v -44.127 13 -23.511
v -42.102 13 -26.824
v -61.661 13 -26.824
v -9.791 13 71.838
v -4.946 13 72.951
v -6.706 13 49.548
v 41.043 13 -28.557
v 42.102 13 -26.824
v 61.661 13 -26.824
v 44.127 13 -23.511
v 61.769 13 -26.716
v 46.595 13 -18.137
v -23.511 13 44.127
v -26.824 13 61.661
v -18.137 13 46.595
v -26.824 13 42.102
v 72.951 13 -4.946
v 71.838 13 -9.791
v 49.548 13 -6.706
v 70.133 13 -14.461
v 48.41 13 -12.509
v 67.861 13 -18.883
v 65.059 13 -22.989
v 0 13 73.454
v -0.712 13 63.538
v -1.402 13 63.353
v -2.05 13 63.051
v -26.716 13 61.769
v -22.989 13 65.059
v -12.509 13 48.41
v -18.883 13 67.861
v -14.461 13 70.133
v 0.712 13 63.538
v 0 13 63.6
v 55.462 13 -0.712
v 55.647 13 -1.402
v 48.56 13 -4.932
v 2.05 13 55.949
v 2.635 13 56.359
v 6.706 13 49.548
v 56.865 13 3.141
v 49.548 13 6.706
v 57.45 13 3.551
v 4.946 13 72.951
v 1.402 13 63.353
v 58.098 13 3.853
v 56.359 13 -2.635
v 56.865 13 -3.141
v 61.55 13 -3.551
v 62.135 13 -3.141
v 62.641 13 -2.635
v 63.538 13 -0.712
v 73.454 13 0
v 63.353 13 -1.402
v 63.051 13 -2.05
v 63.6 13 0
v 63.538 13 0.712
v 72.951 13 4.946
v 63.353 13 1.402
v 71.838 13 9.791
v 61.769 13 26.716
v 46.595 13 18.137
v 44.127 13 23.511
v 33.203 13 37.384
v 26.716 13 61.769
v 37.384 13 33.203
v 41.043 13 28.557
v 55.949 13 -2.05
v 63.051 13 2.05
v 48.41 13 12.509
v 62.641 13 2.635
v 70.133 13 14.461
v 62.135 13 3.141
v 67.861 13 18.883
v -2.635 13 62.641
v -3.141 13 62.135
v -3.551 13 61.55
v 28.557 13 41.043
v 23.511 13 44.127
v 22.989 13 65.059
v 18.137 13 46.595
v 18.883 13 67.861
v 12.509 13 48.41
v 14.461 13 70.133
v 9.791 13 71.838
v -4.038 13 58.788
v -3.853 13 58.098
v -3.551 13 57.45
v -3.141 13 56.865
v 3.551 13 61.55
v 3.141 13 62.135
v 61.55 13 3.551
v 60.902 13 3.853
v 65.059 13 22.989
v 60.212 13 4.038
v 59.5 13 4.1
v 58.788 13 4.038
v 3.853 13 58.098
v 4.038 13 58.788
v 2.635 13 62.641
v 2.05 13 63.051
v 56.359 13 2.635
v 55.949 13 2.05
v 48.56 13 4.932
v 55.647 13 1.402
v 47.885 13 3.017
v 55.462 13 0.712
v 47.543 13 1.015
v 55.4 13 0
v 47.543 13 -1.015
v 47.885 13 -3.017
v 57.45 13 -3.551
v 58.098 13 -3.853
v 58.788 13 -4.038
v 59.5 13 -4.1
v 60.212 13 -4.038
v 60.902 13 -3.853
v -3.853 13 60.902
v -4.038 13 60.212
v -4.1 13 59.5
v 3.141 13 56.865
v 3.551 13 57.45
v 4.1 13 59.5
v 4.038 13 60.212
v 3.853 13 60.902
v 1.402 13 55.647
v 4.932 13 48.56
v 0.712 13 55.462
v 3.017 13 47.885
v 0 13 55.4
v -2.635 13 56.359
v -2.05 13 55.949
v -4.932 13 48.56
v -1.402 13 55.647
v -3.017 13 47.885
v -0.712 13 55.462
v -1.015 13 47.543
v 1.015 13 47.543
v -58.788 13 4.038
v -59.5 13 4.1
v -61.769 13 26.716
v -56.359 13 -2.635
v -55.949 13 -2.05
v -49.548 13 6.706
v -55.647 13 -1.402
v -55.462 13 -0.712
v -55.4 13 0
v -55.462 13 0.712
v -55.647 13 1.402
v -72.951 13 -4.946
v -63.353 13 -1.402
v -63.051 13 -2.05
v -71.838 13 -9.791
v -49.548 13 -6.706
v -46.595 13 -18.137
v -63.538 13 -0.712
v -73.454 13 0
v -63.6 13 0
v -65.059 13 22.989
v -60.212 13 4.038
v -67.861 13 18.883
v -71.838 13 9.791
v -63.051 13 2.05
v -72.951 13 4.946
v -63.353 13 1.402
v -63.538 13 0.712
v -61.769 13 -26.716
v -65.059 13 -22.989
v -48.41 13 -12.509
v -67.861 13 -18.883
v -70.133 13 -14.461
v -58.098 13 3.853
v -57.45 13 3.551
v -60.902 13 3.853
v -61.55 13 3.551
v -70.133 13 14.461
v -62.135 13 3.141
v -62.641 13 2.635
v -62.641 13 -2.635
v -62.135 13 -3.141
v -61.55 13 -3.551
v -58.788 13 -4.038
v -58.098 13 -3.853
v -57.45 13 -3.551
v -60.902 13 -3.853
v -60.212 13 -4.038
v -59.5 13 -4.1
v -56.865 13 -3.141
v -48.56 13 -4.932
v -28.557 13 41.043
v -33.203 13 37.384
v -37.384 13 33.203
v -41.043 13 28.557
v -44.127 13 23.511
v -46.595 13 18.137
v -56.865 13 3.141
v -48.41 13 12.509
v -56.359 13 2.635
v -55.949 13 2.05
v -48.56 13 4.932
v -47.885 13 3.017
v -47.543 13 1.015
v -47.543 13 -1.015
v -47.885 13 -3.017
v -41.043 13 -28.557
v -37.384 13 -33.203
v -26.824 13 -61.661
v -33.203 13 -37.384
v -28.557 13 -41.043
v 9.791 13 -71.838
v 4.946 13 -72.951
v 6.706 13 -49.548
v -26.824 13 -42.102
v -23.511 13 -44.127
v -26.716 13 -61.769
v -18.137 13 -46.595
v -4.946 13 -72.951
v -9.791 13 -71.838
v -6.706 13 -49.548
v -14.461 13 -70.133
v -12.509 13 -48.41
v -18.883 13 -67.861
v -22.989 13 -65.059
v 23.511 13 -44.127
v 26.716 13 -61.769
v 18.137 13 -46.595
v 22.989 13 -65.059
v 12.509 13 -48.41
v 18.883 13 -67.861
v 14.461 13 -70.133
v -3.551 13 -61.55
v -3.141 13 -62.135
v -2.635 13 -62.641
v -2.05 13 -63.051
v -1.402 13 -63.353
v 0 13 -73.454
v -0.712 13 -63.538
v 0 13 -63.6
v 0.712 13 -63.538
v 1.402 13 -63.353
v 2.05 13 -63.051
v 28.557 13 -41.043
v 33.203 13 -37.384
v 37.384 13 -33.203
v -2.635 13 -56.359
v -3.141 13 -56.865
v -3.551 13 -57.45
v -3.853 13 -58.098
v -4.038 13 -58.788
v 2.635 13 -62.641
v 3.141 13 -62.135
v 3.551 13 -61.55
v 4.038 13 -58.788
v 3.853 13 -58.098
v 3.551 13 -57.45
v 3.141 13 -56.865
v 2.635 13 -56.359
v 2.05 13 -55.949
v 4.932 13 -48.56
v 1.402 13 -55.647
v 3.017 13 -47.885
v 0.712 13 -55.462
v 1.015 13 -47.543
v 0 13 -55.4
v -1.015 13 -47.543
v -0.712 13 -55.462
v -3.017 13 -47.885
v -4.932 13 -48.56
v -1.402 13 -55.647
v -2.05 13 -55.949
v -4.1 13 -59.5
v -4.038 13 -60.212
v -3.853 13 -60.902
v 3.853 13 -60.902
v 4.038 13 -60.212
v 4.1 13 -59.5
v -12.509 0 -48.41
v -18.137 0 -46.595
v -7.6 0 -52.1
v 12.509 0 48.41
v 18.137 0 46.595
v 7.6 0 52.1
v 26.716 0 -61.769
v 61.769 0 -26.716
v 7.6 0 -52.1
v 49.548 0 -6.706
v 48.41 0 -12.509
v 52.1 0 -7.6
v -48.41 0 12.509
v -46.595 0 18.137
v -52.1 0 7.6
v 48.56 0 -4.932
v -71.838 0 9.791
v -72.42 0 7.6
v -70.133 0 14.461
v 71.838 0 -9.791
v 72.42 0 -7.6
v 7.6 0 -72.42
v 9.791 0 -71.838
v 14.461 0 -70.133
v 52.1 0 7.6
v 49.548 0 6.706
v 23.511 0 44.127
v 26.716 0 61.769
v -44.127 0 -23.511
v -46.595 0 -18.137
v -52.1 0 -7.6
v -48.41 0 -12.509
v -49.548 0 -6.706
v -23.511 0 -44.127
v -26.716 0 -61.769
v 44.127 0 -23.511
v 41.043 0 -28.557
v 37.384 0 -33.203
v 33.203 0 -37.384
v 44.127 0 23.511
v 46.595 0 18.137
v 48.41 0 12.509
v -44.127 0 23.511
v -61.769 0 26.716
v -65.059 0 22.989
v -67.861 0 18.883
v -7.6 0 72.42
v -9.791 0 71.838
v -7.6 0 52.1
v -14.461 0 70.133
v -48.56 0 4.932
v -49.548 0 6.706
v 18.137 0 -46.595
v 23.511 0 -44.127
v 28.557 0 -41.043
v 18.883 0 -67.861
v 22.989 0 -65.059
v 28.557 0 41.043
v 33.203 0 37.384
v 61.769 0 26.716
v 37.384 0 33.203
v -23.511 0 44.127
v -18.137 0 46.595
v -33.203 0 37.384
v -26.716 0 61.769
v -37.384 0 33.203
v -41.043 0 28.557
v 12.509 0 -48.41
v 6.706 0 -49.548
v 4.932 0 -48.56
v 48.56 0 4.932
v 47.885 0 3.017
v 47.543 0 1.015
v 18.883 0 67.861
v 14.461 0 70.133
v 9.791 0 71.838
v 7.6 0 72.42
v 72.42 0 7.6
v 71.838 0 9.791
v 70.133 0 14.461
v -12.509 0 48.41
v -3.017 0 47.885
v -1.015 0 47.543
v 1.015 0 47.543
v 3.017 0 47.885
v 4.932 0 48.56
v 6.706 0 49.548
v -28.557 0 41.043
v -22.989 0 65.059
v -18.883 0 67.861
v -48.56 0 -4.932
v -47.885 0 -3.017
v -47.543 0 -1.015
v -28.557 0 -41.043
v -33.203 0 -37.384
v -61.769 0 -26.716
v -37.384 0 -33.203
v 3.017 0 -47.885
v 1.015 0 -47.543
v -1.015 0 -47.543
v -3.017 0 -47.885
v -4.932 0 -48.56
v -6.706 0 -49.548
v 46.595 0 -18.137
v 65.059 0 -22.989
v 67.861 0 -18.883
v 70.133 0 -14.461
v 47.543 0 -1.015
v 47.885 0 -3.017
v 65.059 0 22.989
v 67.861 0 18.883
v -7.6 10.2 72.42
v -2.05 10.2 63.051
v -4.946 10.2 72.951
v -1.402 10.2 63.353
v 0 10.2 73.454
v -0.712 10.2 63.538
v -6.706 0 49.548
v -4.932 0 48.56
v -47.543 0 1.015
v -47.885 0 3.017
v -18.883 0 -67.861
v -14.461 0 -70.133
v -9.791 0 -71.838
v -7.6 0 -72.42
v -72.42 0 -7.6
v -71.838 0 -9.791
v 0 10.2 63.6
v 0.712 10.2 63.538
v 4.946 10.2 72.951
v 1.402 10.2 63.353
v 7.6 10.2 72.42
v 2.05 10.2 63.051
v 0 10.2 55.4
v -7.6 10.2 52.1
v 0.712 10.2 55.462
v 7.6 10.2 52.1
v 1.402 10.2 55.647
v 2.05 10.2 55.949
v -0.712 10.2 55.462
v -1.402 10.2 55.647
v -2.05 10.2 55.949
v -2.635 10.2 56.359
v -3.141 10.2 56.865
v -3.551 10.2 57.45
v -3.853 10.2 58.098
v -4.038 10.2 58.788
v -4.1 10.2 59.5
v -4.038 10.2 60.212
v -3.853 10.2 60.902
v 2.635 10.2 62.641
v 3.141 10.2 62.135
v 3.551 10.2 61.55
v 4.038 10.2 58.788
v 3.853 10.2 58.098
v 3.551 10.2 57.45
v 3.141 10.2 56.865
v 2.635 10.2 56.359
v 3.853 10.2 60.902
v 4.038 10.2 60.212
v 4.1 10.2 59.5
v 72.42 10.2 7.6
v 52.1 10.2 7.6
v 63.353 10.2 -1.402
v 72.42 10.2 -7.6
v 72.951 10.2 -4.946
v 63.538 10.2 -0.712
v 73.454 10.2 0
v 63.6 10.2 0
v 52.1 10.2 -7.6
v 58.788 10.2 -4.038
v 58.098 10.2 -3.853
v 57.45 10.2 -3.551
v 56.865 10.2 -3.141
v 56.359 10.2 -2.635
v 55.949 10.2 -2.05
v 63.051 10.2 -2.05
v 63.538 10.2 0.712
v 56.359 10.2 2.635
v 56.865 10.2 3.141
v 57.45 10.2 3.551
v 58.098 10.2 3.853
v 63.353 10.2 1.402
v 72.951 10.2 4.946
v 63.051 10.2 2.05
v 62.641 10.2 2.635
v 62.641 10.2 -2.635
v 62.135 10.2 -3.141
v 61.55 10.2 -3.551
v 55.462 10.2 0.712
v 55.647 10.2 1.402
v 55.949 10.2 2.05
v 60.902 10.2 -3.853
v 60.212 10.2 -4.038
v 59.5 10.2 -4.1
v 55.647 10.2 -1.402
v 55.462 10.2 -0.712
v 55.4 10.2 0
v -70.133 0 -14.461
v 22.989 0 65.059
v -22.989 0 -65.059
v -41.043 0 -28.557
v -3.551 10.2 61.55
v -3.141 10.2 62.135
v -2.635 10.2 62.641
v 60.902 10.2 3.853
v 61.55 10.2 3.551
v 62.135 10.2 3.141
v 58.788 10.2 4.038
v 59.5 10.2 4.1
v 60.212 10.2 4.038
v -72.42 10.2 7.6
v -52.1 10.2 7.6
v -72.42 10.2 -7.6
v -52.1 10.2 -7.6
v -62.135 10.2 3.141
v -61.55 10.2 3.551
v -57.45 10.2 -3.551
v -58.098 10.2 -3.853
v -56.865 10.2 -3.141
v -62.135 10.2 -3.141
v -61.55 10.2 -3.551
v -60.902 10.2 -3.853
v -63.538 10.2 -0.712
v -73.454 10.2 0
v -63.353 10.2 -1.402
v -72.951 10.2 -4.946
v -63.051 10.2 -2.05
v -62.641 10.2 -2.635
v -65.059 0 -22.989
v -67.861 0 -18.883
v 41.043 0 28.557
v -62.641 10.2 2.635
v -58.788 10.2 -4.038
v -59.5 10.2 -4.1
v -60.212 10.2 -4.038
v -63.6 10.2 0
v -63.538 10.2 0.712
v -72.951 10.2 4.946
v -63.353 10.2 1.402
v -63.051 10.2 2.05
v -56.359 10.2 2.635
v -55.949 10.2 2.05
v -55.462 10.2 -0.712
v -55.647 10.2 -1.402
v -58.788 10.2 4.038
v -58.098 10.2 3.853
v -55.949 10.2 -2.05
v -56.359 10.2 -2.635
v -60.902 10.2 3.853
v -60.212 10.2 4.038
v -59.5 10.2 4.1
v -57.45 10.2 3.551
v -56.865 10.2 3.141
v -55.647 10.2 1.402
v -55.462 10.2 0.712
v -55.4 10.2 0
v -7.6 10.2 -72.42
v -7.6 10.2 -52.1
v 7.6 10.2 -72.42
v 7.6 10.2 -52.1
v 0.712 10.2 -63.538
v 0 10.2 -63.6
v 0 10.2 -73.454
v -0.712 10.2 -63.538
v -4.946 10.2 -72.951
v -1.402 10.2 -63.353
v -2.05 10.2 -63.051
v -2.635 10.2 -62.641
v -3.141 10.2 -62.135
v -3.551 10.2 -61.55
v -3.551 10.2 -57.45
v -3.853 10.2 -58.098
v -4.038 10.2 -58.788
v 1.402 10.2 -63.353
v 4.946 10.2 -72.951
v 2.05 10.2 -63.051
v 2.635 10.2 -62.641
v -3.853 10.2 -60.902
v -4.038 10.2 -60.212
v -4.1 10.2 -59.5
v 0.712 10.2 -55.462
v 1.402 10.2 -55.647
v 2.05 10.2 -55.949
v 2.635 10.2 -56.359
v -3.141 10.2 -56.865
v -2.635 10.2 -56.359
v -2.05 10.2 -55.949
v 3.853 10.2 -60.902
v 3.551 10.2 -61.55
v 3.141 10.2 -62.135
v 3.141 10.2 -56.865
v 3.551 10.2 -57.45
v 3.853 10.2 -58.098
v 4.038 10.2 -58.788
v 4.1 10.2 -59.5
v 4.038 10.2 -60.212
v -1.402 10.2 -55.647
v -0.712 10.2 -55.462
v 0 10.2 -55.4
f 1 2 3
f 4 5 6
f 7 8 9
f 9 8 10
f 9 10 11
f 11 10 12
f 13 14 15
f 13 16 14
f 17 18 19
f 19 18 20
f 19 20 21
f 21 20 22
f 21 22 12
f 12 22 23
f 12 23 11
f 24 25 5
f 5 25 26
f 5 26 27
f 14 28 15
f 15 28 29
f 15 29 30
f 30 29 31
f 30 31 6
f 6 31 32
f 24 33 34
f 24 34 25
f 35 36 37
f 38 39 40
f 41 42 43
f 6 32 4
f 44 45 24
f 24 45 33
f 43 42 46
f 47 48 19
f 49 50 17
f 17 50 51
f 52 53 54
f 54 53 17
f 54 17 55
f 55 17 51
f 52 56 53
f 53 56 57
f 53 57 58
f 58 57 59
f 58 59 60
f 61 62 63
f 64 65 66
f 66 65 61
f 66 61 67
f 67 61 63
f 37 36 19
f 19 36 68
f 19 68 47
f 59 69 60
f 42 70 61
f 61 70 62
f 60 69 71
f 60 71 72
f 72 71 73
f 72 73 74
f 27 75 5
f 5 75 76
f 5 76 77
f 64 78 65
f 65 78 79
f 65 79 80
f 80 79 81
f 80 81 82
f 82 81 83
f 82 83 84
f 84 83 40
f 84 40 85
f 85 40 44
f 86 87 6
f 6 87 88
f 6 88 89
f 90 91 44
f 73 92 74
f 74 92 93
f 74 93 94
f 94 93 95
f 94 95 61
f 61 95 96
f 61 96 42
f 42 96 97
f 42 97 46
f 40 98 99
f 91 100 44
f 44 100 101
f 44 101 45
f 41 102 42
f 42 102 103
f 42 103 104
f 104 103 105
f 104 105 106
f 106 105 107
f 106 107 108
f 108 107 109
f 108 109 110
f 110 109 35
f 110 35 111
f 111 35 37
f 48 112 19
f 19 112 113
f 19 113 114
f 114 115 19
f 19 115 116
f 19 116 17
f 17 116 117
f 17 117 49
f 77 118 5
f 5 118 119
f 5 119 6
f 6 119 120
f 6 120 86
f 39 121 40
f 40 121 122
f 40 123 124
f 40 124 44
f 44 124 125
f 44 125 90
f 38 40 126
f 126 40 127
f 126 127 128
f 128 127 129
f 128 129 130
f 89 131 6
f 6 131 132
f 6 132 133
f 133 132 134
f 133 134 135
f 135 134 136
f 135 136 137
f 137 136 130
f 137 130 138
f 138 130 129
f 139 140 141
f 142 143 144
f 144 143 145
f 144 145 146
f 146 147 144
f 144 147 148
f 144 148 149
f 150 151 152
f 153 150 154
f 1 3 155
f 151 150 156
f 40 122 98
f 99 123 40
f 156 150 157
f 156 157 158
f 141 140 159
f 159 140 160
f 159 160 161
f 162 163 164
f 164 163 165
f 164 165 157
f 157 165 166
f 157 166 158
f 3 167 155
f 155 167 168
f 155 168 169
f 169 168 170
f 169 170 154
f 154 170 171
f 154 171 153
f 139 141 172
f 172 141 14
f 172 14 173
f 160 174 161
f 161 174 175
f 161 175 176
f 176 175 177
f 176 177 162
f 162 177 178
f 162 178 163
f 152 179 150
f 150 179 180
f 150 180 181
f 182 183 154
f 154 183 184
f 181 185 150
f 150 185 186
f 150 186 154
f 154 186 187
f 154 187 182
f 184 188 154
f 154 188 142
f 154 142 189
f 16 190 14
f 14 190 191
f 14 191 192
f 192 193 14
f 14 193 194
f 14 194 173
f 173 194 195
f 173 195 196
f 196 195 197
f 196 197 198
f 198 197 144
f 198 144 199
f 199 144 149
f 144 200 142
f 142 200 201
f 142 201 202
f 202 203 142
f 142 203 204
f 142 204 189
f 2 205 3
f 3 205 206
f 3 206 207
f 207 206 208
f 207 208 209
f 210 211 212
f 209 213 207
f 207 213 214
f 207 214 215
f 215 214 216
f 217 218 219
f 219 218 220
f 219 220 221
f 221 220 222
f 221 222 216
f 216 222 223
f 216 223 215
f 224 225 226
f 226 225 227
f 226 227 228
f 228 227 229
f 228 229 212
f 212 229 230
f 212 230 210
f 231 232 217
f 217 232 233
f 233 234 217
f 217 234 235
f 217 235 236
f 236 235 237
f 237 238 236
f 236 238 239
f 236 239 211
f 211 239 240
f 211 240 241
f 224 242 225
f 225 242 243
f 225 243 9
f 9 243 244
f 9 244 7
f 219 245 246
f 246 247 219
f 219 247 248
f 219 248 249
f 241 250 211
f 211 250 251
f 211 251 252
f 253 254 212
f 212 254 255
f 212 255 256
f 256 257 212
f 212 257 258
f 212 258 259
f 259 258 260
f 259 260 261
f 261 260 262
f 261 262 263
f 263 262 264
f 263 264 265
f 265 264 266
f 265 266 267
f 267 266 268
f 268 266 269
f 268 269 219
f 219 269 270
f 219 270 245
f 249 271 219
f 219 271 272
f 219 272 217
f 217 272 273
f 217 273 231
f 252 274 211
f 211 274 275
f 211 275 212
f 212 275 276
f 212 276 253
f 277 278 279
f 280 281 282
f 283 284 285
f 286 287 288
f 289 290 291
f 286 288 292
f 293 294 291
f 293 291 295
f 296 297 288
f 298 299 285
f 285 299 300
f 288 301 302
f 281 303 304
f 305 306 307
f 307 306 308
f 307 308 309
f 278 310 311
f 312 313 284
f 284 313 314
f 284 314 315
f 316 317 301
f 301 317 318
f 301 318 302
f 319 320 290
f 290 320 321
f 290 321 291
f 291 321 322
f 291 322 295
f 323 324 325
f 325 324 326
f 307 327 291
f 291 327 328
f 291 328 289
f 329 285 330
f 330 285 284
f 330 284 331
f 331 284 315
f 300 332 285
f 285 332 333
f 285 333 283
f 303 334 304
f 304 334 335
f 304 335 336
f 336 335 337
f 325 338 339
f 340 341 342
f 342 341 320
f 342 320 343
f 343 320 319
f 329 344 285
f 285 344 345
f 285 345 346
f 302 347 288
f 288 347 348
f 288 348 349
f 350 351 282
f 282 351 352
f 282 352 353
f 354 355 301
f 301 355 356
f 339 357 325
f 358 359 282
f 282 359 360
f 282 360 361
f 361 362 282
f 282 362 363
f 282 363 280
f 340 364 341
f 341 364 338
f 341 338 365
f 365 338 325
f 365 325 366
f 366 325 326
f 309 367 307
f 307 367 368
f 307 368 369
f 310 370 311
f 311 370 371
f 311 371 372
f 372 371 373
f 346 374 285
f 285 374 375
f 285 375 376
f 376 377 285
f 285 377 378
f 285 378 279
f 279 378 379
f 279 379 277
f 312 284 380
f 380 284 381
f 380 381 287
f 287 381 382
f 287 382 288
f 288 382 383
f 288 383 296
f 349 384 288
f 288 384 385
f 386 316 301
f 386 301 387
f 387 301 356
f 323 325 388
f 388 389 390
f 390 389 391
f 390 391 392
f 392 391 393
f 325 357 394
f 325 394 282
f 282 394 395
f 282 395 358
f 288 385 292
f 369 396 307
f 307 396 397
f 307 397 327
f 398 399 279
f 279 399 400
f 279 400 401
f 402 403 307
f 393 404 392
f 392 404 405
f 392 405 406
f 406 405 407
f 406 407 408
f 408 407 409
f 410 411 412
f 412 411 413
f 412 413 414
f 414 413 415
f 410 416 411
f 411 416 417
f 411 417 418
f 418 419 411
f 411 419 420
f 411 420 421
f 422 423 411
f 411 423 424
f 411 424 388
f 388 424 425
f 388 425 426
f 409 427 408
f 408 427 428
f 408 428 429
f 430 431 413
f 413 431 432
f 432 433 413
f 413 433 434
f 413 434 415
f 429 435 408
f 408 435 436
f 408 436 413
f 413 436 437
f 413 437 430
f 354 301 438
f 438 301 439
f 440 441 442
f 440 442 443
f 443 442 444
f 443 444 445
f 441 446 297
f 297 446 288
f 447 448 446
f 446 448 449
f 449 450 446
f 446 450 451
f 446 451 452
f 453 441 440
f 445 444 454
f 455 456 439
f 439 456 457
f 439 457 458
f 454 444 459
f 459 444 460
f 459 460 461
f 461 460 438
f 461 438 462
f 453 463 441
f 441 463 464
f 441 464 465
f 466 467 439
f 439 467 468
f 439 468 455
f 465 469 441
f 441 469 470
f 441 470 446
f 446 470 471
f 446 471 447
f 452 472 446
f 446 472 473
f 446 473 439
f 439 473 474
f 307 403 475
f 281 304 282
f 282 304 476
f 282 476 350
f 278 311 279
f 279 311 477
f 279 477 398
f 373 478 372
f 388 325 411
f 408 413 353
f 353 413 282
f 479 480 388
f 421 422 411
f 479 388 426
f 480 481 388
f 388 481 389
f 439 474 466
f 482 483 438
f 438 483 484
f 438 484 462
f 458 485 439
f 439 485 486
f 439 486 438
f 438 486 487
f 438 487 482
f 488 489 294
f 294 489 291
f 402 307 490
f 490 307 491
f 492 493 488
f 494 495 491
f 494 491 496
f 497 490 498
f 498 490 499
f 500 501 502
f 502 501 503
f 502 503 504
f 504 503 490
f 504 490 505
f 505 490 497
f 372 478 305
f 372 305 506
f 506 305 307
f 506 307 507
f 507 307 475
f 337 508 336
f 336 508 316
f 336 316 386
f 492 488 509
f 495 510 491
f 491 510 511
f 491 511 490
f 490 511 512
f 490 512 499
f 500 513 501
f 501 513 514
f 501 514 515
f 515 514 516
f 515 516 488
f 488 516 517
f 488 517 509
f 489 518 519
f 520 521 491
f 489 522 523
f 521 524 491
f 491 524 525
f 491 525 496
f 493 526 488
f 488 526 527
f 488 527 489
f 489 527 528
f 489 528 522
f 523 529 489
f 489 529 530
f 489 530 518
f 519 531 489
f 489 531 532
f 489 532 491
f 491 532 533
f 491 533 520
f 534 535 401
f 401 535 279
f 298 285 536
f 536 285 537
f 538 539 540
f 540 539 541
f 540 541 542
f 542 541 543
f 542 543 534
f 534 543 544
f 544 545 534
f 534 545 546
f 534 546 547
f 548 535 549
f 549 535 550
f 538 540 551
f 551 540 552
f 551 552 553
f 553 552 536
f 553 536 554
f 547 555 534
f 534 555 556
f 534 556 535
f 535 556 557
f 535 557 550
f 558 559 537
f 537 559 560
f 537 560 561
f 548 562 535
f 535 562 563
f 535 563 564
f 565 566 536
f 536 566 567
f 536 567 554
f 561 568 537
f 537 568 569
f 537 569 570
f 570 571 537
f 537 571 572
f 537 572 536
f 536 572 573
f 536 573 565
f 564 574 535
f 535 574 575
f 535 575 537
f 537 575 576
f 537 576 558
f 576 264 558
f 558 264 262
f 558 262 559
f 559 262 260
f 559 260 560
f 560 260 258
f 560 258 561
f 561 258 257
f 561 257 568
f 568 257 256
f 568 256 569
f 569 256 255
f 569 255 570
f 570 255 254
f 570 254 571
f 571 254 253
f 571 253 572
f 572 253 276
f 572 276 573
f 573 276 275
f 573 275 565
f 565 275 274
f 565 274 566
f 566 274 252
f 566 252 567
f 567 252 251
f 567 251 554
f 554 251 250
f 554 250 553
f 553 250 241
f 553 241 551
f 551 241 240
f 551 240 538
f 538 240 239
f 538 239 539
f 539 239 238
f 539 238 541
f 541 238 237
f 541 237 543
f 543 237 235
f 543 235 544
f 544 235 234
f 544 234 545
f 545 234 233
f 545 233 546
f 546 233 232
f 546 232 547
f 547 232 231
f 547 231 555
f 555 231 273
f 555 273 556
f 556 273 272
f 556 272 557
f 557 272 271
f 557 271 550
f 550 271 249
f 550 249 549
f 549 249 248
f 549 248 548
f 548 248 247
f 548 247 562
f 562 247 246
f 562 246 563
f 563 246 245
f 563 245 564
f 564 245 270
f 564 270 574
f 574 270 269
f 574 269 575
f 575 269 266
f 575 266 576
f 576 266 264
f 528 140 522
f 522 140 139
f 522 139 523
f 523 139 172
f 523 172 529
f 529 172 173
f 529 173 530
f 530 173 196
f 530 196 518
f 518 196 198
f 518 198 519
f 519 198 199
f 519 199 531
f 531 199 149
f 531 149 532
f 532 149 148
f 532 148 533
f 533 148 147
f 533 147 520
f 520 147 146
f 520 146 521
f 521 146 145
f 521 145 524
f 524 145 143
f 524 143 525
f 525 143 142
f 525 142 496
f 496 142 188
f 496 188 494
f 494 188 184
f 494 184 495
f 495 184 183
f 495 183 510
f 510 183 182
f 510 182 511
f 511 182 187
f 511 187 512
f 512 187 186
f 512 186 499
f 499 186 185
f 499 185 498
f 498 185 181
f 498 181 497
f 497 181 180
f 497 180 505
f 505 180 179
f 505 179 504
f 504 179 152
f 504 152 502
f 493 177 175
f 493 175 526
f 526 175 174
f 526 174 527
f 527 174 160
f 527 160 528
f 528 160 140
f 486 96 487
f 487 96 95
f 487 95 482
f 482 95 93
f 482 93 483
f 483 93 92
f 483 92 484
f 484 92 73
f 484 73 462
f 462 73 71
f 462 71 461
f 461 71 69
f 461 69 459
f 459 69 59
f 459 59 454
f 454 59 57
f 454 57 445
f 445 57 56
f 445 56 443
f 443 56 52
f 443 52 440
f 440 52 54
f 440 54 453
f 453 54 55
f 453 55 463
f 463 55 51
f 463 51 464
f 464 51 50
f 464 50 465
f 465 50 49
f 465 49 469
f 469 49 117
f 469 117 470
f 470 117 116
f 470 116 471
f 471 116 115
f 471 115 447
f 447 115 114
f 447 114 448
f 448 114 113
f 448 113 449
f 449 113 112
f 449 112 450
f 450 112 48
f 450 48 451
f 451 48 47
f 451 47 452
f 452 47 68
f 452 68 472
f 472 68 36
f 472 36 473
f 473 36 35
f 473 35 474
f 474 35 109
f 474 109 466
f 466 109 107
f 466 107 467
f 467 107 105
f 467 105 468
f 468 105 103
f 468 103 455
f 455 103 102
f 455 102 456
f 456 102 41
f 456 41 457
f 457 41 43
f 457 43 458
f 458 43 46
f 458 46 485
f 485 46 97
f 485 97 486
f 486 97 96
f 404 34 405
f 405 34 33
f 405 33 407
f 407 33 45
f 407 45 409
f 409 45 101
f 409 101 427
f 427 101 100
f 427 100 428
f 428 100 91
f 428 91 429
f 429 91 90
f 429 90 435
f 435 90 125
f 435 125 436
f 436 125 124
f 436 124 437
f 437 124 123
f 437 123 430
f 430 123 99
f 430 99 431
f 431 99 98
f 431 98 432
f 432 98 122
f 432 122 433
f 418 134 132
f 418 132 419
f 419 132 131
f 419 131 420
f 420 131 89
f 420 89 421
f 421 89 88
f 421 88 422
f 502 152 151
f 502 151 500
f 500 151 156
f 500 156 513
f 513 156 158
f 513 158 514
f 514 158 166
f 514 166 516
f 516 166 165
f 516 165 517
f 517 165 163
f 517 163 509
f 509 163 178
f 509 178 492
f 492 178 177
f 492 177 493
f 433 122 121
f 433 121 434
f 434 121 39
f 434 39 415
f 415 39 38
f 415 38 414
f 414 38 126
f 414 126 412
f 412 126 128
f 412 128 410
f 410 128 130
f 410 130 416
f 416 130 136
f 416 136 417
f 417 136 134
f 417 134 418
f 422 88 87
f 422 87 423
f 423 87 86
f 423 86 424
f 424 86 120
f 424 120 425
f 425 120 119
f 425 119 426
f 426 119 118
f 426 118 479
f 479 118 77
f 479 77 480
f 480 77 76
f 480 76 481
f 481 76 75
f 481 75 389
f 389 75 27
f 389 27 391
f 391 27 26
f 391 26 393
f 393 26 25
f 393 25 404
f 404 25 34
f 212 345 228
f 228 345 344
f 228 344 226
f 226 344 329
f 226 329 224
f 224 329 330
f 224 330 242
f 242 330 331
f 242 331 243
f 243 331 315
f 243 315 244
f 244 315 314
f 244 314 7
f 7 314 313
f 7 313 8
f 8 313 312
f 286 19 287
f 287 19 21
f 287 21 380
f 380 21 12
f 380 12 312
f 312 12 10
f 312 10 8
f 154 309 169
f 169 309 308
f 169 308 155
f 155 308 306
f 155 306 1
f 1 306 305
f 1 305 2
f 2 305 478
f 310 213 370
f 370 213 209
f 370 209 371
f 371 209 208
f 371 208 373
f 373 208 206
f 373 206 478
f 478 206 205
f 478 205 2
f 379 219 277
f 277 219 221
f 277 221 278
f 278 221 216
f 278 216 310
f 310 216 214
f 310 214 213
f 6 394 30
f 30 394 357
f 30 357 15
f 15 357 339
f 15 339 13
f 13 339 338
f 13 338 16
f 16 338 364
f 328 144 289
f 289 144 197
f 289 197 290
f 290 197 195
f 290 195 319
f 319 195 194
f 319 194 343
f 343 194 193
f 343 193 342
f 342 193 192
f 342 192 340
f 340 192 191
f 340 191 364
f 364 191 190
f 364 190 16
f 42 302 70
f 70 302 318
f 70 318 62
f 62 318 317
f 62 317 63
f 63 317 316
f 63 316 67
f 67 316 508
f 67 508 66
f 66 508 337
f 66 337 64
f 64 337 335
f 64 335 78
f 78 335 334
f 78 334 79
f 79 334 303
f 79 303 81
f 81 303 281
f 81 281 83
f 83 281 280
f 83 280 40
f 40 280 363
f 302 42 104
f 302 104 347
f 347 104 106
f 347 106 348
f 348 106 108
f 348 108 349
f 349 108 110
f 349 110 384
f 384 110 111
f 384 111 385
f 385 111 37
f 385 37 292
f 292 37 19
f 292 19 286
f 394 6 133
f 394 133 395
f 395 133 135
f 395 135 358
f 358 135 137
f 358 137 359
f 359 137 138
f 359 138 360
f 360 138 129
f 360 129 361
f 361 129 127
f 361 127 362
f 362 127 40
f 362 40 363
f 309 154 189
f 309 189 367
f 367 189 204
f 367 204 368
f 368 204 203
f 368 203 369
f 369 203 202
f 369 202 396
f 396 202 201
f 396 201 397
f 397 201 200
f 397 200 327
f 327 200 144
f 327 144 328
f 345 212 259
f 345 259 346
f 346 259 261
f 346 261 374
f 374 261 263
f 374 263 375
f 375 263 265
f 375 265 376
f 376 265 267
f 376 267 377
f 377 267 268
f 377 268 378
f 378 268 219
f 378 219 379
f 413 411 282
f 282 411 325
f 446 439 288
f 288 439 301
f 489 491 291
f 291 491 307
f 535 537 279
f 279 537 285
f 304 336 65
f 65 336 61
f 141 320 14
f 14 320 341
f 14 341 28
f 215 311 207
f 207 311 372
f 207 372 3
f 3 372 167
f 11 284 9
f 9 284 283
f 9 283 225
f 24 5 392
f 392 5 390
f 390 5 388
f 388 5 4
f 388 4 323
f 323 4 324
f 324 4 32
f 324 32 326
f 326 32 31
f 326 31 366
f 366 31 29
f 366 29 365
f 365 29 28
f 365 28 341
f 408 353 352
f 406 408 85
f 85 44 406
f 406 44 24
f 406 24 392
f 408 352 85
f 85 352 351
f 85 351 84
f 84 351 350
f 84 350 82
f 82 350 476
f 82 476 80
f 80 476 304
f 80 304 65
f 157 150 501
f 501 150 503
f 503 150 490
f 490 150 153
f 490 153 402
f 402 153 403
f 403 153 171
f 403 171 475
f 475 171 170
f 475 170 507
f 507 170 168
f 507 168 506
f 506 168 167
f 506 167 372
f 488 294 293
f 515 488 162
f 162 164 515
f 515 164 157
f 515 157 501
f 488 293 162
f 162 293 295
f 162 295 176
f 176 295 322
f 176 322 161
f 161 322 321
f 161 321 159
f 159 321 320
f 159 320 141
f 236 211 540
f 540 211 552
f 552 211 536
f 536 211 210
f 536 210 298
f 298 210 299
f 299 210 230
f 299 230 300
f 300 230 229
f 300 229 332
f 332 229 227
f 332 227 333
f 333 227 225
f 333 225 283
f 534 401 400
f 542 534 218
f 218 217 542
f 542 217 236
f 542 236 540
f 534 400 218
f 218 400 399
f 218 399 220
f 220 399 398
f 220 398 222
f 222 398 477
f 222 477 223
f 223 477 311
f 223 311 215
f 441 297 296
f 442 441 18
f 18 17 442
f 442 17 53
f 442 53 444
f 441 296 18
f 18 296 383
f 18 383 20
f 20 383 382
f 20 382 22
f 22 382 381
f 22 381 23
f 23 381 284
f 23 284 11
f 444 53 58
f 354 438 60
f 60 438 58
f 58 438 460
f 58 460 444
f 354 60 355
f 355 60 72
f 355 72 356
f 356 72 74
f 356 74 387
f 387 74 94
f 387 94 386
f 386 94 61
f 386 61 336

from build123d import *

# Parameters (mm, degrees)
SKETCH1_R           = 75
SKETCH1_R_2         = 50
BOSS_EXTRUDE1_DEPTH = 13
SKETCH2_R           = 4.1
CUT_EXTRUDE1_DEPTH  = 107.85972113
SKETCH8_R           = 12
SKETCH8_R_2         = 4.1
BOSS_EXTRUDE4_DEPTH = 13
SKETCH3_W           = 15.2
SKETCH3_H           = 40
SKETCH3_W_2         = 40
SKETCH3_H_2         = 15.2
CUT_EXTRUDE2_DEPTH  = 10.2
BOSS_EXTRUDE2_DEPTH = 13
FILLET1_R           = 30
SKETCH7_OUTSIDE_W   = 194.506
SKETCH7_OUTSIDE_H   = 194.506
CUT_EXTRUDE4_DEPTH  = 107.85972113
FILLET3_R           = 40


with BuildPart() as part:
    # Sketch1 → Boss-Extrude1 (new body)
    with BuildSketch(Plane(origin=(0, 0, 0), x_dir=(1, 0, 0), z_dir=(0, 1, 0))):
        with Locations(Location((0, 0, 0), (0, 0, 90))):
            Circle(SKETCH1_R)
        with Locations(Location((0, 0, 0), (0, 0, 90))):
            Circle(SKETCH1_R_2, mode=Mode.SUBTRACT)
    extrude(amount=BOSS_EXTRUDE1_DEPTH)

    # Sketch2 → Cut-Extrude1 (cut, through all)
    with BuildSketch(Plane(origin=(0, 13, 0), x_dir=(1, 0, 0), z_dir=(0, 1, 0))):
        with Locations(Location((0, 59.5, 0), (0, 0, 270))):
            Circle(SKETCH2_R)
        with Locations(Location((59.5, 0, 0), (0, 0, 270))):
            Circle(SKETCH2_R)
        with Locations(Location((0, -59.5, 0), (0, 0, 270))):
            Circle(SKETCH2_R)
        with Locations(Location((-59.5, 0, 0), (0, 0, 270))):
            Circle(SKETCH2_R)
    extrude(amount=-CUT_EXTRUDE1_DEPTH, mode=Mode.SUBTRACT)

    # Sketch8 → Boss-Extrude4 (add)
    # profile 1 of 4: a face of its own
    with BuildSketch(Plane(origin=(0, 13, 0), x_dir=(1, 0, 0), z_dir=(0, 1, 0))):
        with Locations((59.5, 0)):
            Circle(SKETCH8_R)
        with Locations(Location((59.5, 0, 0), (0, 0, 270))):
            Circle(SKETCH8_R_2, mode=Mode.SUBTRACT)
    # profile 2 of 4: a face of its own
    with BuildSketch(Plane(origin=(0, 13, 0), x_dir=(1, 0, 0), z_dir=(0, 1, 0))):
        with Locations((0, -59.5)):
            Circle(SKETCH8_R)
        with Locations(Location((0, -59.5, 0), (0, 0, 270))):
            Circle(SKETCH8_R_2, mode=Mode.SUBTRACT)
    # profile 3 of 4: a face of its own
    with BuildSketch(Plane(origin=(0, 13, 0), x_dir=(1, 0, 0), z_dir=(0, 1, 0))):
        with Locations((-59.5, 0)):
            Circle(SKETCH8_R)
        with Locations(Location((-59.5, 0, 0), (0, 0, 270))):
            Circle(SKETCH8_R_2, mode=Mode.SUBTRACT)
    # profile 4 of 4: a face of its own
    with BuildSketch(Plane(origin=(0, 13, 0), x_dir=(1, 0, 0), z_dir=(0, 1, 0))):
        with Locations((0, 59.5)):
            Circle(SKETCH8_R)
        with Locations(Location((0, 59.5, 0), (0, 0, 270))):
            Circle(SKETCH8_R_2, mode=Mode.SUBTRACT)
    extrude(amount=-BOSS_EXTRUDE4_DEPTH)

    # Sketch3 → Cut-Extrude2 (cut)
    with BuildSketch(Plane.XZ):
        with Locations((0, 72.1)):
            Rectangle(SKETCH3_W, SKETCH3_H)
        with Locations((72.1, 0)):
            Rectangle(SKETCH3_W_2, SKETCH3_H_2)
        with Locations((0, -72.1)):
            Rectangle(SKETCH3_W, SKETCH3_H)
        with Locations((-72.1, 0)):
            Rectangle(SKETCH3_W_2, SKETCH3_H_2)
    extrude(amount=-CUT_EXTRUDE2_DEPTH, mode=Mode.SUBTRACT)

    # Sketch4 → Boss-Extrude2 (add)
    with BuildSketch(Plane(origin=(0, 13, 0), x_dir=(1, 0, 0), z_dir=(0, 1, 0))):
        Polygon((-40.658639918, -65.40737726), (-65.40737726, -40.658639918), (-63.943497033, -39.194759691), (-39.194759691, -63.943497033), align=None)
    extrude(amount=-BOSS_EXTRUDE2_DEPTH)

    # Fillet1
    # the kernel refuses this fillet: 30 mm, written as the material it adds along each edge
    with BuildSketch(Plane(origin=(-63.943497033, 13, 39.194759691), x_dir=(-0.47318102872743373, 0, -0.8809652172773041), z_dir=(0, -1, 0))) as fillet1_piece_1:
        with BuildLine():
            CenterArc((10.253688675, -29.951285387), FILLET1_R, 93.265618259, 17.938271436)
            Line((-0.596947211, -1.982307914), (-0.813959928, -1.422928365))
            ThreePointArc((-0.813959928, -1.422928365), (-0.872989201, -0.818145778), (-0.574515596, 0.173008179))
            Line((-0.574515596, 0.173008179), (0.034178962, 0.599025708))
            ThreePointArc((0.034178962, 0.599025708), (4.272370281, 0.478213468), (8.5105616, 0.599025708))
            Line((8.5105616, 0.599025708), (8.544740562, 0))
        make_face()
    extrude(amount=13)
    with BuildSketch(Plane(origin=(-39.194759691, 13, 63.943497033), x_dir=(0.8809652172773019, 0, 0.47318102872743756), z_dir=(0, -1, 0))) as fillet1_piece_2:
        with BuildLine():
            CenterArc((10.253688675, 29.951285387), FILLET1_R, 248.796110305, 17.938271436)
            Line((-0.596947211, 1.982307914), (-0.813959928, 1.422928365))
            ThreePointArc((-0.813959928, 1.422928365), (-0.872989201, 0.818145778), (-0.574515596, -0.173008179))
            Line((-0.574515596, -0.173008179), (0.034178962, -0.599025708))
            ThreePointArc((0.034178962, -0.599025708), (4.272370281, -0.478213468), (8.5105616, -0.599025708))
            Line((8.5105616, -0.599025708), (8.544740562, 0))
        make_face()
    extrude(amount=13)

    # Sketch7 outside → Cut-Extrude4 (cut, through all)
    with BuildSketch(Plane(origin=(0, 13, 0), x_dir=(1, 0, 0), z_dir=(0, 1, 0))):
        Rectangle(SKETCH7_OUTSIDE_W, SKETCH7_OUTSIDE_H)
        Polygon((73.484692283, -15), (15, -73.484692283), (-15, -73.484692283), (-73.484692283, -15), (-73.484692283, 15), (-15, 73.484692283), (15, 73.484692283), (73.484692283, 15), align=None, mode=Mode.SUBTRACT)
    extrude(amount=-CUT_EXTRUDE4_DEPTH, mode=Mode.SUBTRACT)

    # Fillet3
    # the kernel refuses this fillet: 40 mm, written as the material it takes off along each edge
    with BuildSketch(Plane(origin=(15, 54.421356237, 73.484692283), x_dir=(-1, 0, 0), z_dir=(0, -1, 0)), Plane(origin=(73.484692283, 54.421356237, 15), x_dir=(-0.7071067811865474, 0, 0.7071067811865476), z_dir=(0, -1, 0))) as fillet3_piece_1:
        with BuildLine():
            CenterArc((FILLET3_R * 0.414213562373, FILLET3_R), FILLET3_R, 225, 45)
            Line((-FILLET3_R * 0.292893218813, FILLET3_R * 0.292893218813), (0, 0))
            Line((0, 0), (FILLET3_R * 0.414213562373, 0))
        make_face()
    extrude(amount=95.842712475, mode=Mode.SUBTRACT)
    with BuildSketch(Plane(origin=(-15, 54.421356237, 73.484692283), x_dir=(1, 0, 0), z_dir=(0, -1, 0)), Plane(origin=(-73.484692283, 54.421356237, 15), x_dir=(0.7071067811865477, 0, 0.7071067811865472), z_dir=(0, -1, 0)), Plane(origin=(-73.484692283, 54.421356237, -15), x_dir=(0, 0, 1), z_dir=(0, -1, 0)), Plane(origin=(-15, 54.421356237, -73.484692283), x_dir=(-0.7071067811865472, 0, 0.7071067811865477), z_dir=(0, -1, 0)), Plane(origin=(15, 54.421356237, -73.484692283), x_dir=(-1, 0, 0), z_dir=(0, -1, 0)), Plane(origin=(73.484692283, 54.421356237, -15), x_dir=(-0.7071067811865477, 0, -0.7071067811865472), z_dir=(0, -1, 0))) as fillet3_piece_2:
        with BuildLine():
            CenterArc((FILLET3_R * 0.414213562373, -FILLET3_R), FILLET3_R, 90, 45)
            Line((-FILLET3_R * 0.292893218813, -FILLET3_R * 0.292893218813), (0, 0))
            Line((0, 0), (FILLET3_R * 0.414213562373, 0))
        make_face()
    extrude(amount=95.842712475, mode=Mode.SUBTRACT)


solid = part.part
